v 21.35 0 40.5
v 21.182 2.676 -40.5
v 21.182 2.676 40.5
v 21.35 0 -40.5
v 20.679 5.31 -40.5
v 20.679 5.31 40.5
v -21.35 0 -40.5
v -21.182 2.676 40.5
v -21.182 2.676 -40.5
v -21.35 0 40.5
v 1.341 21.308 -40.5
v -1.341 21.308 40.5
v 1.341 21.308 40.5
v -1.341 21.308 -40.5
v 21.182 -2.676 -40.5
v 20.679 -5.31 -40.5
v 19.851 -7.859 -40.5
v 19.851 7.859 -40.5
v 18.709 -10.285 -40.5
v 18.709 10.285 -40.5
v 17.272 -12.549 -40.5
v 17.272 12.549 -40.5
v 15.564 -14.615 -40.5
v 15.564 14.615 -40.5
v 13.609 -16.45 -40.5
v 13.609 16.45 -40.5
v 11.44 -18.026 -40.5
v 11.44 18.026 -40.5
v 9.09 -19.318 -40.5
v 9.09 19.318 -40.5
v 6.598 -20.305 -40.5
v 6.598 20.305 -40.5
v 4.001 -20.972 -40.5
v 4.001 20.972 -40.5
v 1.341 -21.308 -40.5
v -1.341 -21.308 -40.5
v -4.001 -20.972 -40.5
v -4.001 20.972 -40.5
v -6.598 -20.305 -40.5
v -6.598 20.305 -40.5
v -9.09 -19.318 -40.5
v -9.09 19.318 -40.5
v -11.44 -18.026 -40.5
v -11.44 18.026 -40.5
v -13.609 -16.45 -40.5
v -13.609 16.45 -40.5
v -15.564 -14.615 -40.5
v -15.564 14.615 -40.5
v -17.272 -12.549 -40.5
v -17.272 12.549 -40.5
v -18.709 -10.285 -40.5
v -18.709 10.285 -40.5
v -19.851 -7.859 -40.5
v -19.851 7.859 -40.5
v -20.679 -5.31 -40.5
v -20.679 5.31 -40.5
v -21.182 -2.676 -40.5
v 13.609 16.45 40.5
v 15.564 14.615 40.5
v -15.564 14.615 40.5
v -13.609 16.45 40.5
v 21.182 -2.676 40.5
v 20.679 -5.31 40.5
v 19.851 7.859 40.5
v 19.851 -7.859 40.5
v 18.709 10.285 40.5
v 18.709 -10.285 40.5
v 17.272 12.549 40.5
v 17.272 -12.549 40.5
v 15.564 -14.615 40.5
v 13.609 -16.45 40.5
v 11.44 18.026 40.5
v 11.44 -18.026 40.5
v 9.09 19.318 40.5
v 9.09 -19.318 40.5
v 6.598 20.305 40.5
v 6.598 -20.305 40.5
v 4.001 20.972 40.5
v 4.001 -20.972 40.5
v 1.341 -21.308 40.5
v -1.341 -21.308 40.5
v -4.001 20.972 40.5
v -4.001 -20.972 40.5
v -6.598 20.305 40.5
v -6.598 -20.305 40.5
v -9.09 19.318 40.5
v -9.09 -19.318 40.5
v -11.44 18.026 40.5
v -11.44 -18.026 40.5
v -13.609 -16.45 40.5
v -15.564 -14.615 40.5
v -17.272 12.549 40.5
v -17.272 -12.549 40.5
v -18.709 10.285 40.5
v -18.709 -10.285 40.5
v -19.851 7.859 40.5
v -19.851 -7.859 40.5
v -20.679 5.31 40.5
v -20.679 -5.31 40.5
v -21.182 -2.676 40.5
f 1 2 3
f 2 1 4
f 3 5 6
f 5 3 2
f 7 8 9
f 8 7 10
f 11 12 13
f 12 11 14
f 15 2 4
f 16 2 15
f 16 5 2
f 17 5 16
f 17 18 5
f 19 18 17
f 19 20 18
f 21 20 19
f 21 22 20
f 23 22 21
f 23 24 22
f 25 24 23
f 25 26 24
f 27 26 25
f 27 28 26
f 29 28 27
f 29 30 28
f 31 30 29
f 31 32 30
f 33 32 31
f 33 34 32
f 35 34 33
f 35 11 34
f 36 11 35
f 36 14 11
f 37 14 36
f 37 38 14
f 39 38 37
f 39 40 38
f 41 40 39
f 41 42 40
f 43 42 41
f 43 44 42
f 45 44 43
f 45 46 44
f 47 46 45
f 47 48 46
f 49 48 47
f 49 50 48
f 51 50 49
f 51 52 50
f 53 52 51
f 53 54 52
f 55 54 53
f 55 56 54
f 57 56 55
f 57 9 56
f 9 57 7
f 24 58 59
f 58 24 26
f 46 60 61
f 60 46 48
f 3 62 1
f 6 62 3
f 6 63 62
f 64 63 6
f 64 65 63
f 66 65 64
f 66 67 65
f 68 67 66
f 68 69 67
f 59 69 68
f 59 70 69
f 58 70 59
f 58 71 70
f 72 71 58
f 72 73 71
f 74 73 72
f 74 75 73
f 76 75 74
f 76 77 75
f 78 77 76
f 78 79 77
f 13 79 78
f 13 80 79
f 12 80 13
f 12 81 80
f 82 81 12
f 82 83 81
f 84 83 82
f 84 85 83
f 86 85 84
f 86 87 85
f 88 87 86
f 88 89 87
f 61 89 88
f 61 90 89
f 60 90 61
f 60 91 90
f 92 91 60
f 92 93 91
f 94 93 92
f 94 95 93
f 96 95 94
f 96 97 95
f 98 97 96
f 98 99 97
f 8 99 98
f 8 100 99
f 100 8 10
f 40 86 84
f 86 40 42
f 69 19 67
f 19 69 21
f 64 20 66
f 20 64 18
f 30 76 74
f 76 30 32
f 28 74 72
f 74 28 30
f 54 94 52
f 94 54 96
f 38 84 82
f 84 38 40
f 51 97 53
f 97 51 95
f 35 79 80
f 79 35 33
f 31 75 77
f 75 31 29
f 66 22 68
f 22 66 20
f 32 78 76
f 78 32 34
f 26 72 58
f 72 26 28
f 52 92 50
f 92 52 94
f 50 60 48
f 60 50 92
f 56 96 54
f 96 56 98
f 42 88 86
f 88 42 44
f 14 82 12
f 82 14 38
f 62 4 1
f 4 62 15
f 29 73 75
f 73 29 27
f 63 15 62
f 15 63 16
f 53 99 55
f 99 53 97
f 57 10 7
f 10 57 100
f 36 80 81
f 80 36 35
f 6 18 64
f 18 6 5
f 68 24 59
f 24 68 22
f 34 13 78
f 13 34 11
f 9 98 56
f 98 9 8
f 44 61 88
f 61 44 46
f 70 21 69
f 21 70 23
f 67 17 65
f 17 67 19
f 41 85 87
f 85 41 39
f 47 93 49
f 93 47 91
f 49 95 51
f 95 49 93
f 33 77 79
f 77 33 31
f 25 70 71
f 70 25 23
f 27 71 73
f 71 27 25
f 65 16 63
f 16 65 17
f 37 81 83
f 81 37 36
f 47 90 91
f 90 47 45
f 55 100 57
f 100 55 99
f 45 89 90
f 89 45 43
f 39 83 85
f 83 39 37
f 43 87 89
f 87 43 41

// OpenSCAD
$fn = 50;


difference() {
	union() {
		translate(v = [0, 0, -40.5000000000]) {
			cylinder(h = 81, r = 21.3500000000);
		}
	}
	union() {
		translate(v = [0, 0, -100.0000000000]) {
			cylinder(h = 200, r = 0);
		}
	}
}
